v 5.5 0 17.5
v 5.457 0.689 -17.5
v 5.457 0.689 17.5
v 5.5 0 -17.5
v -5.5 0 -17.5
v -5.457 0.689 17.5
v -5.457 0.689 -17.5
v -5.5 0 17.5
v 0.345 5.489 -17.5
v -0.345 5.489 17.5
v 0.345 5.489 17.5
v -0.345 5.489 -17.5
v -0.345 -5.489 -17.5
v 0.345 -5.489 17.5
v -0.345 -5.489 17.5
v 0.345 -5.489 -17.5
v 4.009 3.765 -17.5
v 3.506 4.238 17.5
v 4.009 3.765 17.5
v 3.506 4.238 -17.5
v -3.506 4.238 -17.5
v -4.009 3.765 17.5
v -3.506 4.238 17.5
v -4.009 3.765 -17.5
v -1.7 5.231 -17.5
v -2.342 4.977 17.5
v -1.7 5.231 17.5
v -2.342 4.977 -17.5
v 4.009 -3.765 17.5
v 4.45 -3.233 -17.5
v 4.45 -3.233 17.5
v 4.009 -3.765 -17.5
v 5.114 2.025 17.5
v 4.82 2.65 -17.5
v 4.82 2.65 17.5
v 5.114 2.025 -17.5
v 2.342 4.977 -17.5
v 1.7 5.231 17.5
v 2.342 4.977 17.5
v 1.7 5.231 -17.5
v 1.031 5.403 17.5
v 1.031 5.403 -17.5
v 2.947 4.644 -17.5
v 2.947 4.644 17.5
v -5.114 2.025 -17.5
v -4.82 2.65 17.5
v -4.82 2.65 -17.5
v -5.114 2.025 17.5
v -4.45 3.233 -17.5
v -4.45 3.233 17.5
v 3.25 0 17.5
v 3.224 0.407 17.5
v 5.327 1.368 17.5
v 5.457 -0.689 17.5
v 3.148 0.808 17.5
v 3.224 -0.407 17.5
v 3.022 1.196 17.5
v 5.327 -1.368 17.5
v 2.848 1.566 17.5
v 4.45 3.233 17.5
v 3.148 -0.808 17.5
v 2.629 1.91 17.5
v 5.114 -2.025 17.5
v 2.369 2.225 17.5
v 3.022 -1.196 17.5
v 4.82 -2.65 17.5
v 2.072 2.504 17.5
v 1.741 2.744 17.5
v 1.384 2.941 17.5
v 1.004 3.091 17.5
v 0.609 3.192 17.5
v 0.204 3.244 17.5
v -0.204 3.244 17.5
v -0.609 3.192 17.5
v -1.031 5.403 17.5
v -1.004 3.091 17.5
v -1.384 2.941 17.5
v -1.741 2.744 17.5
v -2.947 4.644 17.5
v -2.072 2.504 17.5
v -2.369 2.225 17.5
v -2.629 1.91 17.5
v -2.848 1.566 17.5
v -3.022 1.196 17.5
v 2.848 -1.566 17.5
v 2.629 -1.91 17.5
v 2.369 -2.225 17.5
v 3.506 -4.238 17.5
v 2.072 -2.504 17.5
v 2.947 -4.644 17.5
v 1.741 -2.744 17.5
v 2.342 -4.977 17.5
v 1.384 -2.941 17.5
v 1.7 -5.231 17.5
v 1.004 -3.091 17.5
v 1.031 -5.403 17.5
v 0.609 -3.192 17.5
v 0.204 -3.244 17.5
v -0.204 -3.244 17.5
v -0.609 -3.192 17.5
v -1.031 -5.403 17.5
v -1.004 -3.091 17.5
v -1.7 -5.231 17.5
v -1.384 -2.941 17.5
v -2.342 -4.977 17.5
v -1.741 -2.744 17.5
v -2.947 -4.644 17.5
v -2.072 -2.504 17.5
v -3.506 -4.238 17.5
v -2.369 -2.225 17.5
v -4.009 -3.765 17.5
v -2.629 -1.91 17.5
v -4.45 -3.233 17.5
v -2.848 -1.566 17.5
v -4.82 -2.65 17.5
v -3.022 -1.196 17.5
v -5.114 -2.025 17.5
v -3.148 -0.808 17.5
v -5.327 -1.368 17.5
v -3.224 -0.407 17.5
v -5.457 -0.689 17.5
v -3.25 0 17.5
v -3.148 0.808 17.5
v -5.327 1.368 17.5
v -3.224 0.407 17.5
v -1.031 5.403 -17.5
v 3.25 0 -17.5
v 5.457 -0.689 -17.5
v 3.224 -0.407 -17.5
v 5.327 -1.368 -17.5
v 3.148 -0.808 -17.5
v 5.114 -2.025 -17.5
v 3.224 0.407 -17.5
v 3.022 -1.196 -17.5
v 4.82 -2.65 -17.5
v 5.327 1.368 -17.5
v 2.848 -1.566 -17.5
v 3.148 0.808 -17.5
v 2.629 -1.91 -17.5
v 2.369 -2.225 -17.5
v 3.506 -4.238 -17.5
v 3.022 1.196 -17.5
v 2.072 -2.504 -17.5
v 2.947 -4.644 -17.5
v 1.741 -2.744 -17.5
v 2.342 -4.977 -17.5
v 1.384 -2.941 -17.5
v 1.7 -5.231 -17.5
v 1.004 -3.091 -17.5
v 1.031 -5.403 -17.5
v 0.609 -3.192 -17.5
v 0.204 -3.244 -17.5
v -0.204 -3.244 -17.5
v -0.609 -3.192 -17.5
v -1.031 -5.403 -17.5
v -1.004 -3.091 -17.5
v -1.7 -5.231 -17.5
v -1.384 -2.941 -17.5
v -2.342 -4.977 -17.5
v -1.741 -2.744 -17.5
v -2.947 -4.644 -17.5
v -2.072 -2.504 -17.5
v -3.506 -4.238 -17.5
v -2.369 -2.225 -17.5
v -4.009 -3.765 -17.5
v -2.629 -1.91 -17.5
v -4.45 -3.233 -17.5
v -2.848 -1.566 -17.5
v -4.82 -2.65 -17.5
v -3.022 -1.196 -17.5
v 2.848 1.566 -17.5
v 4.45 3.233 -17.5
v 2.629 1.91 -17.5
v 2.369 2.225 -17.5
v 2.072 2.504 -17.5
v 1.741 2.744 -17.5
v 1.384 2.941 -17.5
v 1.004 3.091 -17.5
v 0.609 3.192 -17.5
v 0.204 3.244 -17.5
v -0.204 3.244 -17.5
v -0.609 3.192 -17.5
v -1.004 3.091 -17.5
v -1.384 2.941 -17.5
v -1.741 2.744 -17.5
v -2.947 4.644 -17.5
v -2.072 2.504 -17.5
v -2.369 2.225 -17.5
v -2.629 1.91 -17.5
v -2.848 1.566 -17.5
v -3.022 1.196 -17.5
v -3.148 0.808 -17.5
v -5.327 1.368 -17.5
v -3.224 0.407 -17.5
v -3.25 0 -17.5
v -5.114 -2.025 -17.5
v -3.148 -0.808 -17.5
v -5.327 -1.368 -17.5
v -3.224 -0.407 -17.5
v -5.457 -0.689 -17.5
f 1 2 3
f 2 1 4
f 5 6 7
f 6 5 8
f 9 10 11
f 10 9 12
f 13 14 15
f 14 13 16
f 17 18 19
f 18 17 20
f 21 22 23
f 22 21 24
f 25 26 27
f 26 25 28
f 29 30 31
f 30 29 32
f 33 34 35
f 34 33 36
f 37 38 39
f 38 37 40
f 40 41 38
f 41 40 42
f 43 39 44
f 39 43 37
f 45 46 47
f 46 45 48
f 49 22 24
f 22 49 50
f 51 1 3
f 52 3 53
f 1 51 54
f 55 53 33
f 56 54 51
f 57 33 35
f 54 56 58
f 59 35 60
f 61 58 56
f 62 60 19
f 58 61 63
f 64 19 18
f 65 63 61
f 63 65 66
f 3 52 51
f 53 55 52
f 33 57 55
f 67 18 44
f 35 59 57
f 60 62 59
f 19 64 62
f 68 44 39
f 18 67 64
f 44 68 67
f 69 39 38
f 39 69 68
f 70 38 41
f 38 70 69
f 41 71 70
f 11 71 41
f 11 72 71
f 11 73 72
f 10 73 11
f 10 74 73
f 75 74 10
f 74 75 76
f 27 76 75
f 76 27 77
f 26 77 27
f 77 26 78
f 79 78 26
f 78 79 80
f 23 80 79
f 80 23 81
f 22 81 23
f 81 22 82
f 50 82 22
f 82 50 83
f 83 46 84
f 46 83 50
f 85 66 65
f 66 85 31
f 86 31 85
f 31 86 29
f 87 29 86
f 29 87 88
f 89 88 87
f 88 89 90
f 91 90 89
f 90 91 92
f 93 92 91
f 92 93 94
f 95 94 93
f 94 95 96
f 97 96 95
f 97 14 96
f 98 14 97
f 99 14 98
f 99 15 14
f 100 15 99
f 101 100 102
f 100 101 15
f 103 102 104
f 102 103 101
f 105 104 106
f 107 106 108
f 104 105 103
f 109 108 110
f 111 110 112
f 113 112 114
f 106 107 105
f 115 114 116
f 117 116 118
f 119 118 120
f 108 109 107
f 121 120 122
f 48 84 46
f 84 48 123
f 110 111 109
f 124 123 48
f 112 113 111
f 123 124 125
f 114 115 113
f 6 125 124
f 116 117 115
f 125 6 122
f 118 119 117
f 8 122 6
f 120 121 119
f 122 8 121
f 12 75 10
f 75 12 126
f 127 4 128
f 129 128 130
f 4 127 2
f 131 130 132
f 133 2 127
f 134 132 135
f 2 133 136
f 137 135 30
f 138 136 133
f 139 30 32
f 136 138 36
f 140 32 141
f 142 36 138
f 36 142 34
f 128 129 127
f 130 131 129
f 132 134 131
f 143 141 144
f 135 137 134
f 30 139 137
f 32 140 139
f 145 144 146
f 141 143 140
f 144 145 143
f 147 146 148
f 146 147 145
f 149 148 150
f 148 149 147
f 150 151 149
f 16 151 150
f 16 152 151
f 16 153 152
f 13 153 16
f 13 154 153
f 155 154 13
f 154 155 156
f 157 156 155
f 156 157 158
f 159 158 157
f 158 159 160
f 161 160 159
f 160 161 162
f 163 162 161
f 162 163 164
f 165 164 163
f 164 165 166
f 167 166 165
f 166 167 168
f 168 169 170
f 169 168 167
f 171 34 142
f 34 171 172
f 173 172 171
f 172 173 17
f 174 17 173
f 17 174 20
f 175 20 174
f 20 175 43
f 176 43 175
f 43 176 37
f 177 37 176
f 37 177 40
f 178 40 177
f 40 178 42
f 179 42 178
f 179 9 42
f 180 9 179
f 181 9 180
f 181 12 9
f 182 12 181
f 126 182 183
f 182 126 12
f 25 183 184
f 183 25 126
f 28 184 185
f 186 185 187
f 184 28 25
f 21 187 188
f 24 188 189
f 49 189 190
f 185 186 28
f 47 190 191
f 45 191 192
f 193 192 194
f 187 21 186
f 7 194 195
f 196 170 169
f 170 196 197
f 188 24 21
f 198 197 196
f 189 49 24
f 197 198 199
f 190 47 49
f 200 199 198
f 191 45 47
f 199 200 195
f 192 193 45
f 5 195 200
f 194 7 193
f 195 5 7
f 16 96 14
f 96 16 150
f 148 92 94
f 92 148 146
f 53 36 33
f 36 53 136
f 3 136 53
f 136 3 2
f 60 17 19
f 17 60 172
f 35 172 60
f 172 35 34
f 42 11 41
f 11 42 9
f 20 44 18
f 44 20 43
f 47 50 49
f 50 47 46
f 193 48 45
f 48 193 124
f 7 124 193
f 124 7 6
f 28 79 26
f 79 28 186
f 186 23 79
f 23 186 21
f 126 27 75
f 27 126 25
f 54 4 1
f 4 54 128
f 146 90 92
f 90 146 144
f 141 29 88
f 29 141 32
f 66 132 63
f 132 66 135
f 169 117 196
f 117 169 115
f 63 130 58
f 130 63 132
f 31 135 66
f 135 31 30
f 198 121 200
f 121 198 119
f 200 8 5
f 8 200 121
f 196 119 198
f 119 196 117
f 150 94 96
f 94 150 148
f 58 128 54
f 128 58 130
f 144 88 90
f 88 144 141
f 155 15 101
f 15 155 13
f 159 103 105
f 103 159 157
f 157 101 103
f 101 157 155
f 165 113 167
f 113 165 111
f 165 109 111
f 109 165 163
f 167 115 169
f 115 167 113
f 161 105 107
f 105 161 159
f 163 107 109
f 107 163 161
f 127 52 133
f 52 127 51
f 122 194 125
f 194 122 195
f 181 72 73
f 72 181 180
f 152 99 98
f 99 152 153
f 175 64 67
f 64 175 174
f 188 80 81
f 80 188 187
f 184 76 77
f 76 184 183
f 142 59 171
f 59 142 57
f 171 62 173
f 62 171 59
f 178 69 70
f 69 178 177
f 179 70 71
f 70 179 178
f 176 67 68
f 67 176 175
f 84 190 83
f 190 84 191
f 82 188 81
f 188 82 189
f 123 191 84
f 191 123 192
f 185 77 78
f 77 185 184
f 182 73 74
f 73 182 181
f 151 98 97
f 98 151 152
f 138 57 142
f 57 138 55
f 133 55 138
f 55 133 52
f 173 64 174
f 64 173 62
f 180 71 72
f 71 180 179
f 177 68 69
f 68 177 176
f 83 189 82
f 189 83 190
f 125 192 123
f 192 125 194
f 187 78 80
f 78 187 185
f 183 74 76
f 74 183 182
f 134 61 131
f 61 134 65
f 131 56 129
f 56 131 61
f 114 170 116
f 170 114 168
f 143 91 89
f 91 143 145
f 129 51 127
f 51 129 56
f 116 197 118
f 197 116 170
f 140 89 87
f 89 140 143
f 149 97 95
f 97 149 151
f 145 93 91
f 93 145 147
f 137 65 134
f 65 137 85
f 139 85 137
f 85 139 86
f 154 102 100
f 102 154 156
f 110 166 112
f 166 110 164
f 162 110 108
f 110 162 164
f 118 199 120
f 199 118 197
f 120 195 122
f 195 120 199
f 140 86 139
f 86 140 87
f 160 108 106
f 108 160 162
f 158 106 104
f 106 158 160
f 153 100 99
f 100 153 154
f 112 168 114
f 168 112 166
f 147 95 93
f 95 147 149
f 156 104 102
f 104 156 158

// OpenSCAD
$fn = 50;


difference() {
	union() {
		translate(v = [0, 0, -17.5000000000]) {
			cylinder(h = 35, r = 5.5000000000);
		}
	}
	union() {
		translate(v = [0, 0, -100.0000000000]) {
			cylinder(h = 200, r = 3.2500000000);
		}
	}
}
